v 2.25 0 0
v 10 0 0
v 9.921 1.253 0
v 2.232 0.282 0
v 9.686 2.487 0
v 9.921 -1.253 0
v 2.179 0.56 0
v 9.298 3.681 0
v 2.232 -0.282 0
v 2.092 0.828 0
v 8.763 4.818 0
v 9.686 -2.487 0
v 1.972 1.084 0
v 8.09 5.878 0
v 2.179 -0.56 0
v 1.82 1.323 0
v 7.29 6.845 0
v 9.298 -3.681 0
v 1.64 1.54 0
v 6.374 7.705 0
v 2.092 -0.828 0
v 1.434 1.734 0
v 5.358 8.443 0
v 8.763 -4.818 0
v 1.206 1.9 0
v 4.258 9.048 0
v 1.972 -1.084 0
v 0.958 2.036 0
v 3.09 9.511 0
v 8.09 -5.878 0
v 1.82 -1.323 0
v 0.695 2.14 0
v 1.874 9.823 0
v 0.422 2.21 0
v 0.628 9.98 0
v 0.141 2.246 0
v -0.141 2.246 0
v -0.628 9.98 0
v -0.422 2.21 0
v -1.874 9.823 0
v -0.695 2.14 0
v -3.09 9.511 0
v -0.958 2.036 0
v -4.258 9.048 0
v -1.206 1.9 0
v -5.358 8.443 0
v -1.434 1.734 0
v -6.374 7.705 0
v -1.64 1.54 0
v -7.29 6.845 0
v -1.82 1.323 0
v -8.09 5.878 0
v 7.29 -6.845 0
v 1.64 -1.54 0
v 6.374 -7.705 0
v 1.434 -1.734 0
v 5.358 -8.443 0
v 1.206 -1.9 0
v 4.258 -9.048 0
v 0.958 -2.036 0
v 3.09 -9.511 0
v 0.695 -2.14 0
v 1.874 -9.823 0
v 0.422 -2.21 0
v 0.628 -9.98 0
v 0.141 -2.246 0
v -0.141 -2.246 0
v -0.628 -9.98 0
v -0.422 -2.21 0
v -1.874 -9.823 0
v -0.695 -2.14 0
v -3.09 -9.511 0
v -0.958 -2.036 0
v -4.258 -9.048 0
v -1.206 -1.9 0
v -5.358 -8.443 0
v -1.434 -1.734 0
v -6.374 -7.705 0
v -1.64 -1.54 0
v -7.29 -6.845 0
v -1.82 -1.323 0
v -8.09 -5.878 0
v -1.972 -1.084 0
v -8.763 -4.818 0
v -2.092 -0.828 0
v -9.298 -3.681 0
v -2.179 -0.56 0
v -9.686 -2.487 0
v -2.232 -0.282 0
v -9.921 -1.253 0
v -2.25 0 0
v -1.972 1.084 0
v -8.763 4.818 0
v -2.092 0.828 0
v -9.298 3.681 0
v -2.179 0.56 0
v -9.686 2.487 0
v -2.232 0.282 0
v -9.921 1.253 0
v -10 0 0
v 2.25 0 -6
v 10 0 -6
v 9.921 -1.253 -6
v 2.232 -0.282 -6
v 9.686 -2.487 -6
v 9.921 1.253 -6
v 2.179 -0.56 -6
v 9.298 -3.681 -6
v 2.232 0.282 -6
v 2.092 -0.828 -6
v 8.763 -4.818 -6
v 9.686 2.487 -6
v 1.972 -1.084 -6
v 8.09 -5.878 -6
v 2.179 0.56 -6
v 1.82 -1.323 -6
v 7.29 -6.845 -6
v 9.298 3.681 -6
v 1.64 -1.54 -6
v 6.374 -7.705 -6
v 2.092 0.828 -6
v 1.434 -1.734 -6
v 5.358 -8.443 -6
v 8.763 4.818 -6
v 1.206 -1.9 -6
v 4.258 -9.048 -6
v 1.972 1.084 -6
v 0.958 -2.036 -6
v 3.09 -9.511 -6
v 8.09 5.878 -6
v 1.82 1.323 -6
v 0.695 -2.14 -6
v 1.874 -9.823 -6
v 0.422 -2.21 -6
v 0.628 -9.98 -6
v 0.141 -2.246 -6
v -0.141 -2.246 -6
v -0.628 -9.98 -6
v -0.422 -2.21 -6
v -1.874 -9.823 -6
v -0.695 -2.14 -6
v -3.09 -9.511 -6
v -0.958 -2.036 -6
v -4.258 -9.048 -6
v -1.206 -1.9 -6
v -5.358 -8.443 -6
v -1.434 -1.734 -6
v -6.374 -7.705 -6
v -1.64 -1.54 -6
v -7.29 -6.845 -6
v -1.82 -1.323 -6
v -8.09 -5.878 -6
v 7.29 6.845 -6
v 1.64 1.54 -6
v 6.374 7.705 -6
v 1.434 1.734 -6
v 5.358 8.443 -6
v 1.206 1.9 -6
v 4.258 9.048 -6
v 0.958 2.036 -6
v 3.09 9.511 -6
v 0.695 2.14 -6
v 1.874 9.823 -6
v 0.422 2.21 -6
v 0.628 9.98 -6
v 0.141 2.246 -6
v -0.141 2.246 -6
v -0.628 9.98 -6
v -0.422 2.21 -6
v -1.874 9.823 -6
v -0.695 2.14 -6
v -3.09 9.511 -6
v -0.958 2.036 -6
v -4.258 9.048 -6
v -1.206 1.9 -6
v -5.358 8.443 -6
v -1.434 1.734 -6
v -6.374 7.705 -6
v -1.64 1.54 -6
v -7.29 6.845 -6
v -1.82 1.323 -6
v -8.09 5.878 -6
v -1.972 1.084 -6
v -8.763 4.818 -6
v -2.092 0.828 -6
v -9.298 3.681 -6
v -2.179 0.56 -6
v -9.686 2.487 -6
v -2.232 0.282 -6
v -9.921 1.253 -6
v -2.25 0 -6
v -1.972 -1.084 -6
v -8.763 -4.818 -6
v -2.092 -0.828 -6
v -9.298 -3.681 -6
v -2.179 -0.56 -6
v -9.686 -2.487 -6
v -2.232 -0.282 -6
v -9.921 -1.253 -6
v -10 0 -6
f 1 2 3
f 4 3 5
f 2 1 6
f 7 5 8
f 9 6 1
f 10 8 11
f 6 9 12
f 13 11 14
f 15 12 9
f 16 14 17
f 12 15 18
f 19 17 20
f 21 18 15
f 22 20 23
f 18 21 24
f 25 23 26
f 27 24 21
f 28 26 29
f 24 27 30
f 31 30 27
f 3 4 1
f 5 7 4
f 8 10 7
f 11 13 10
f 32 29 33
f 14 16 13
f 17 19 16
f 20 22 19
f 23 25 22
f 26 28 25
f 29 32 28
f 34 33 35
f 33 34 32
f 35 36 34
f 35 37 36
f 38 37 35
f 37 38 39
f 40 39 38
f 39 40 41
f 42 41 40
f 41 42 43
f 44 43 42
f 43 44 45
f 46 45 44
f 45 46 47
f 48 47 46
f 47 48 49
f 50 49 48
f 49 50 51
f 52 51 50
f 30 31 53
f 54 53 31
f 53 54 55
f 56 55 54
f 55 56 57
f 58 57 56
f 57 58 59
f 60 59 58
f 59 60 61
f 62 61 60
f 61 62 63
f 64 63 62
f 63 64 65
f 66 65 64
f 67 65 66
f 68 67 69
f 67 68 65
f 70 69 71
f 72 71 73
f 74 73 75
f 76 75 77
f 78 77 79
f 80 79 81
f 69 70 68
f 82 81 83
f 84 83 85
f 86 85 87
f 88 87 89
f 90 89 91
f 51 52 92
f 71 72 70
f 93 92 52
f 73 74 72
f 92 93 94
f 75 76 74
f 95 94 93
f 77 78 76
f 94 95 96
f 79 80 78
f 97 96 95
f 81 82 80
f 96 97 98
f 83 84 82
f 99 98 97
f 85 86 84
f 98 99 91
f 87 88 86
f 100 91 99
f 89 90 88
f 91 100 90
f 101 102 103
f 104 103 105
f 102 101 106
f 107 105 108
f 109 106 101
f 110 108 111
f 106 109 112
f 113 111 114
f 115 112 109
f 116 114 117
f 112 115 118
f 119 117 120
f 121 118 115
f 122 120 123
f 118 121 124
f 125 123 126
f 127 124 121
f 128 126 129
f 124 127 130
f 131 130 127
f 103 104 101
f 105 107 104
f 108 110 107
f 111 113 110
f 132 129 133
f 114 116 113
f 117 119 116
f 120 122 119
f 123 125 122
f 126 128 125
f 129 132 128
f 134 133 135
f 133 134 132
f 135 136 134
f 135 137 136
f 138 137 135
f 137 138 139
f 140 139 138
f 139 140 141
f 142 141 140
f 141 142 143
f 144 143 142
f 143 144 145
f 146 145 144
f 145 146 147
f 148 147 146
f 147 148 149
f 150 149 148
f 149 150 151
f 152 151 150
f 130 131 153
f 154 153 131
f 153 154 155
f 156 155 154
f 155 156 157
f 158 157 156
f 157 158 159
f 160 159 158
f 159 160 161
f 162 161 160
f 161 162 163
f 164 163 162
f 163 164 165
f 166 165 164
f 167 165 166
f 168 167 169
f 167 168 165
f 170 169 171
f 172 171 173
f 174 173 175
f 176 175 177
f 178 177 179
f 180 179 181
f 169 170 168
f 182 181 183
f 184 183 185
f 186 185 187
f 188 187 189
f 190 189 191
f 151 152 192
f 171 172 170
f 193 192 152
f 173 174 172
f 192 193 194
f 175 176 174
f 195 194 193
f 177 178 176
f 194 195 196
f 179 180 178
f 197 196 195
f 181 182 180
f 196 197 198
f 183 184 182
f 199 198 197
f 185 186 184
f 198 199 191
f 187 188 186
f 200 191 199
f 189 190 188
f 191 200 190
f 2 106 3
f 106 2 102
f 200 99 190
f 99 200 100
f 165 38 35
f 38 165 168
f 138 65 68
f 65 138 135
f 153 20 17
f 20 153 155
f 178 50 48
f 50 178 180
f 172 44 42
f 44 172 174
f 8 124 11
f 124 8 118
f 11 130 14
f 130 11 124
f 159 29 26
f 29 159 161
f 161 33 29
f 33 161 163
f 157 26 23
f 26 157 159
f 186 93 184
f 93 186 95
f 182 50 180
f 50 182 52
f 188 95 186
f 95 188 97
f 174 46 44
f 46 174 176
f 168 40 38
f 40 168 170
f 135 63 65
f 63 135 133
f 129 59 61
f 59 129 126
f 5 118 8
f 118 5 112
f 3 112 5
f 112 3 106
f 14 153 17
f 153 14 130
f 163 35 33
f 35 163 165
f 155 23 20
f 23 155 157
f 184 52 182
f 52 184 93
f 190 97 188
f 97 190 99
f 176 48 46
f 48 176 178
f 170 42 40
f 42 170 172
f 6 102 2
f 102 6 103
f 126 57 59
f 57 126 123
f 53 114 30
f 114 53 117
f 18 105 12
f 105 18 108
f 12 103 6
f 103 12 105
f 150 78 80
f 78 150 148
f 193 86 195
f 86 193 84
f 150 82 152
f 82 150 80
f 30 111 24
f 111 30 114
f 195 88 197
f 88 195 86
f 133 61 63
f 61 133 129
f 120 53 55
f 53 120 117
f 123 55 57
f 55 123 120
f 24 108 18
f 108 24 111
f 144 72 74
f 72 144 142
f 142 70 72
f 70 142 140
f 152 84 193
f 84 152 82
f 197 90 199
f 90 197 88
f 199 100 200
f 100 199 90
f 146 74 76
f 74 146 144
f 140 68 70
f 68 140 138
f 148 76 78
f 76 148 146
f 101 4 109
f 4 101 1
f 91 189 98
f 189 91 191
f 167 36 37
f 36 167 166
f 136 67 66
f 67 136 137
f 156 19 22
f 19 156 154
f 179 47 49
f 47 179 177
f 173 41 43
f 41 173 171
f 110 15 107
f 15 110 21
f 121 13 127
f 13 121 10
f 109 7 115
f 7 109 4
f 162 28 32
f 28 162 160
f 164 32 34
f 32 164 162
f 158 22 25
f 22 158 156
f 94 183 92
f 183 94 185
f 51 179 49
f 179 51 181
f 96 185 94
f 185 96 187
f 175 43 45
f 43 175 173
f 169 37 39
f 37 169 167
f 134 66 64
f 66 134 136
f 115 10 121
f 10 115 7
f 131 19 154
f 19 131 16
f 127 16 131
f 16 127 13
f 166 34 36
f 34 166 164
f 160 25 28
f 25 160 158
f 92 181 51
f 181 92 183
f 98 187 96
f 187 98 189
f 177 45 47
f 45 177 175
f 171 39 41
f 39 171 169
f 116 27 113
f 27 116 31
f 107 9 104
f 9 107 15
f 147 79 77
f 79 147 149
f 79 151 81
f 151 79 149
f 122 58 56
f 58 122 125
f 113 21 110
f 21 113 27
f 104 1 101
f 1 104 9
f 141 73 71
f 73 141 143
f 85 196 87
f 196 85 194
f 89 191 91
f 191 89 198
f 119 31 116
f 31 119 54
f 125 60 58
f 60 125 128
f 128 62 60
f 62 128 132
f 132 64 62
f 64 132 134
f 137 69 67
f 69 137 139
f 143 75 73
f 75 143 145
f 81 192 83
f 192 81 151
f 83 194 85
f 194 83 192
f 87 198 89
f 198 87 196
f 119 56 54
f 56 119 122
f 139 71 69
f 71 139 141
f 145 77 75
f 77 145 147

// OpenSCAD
$fn = 50;


difference() {
	union() {
		translate(v = [0, 0, -6.0000000000]) {
			cylinder(h = 6, r = 7.0000000000);
		}
		translate(v = [0, 0, -6.0000000000]) {
			cylinder(h = 6, r = 10.0000000000);
		}
	}
	union() {
		#translate(v = [0, 0, -6]) {
			cylinder(h = 6, r = 2.2500000000);
		}
	}
}
